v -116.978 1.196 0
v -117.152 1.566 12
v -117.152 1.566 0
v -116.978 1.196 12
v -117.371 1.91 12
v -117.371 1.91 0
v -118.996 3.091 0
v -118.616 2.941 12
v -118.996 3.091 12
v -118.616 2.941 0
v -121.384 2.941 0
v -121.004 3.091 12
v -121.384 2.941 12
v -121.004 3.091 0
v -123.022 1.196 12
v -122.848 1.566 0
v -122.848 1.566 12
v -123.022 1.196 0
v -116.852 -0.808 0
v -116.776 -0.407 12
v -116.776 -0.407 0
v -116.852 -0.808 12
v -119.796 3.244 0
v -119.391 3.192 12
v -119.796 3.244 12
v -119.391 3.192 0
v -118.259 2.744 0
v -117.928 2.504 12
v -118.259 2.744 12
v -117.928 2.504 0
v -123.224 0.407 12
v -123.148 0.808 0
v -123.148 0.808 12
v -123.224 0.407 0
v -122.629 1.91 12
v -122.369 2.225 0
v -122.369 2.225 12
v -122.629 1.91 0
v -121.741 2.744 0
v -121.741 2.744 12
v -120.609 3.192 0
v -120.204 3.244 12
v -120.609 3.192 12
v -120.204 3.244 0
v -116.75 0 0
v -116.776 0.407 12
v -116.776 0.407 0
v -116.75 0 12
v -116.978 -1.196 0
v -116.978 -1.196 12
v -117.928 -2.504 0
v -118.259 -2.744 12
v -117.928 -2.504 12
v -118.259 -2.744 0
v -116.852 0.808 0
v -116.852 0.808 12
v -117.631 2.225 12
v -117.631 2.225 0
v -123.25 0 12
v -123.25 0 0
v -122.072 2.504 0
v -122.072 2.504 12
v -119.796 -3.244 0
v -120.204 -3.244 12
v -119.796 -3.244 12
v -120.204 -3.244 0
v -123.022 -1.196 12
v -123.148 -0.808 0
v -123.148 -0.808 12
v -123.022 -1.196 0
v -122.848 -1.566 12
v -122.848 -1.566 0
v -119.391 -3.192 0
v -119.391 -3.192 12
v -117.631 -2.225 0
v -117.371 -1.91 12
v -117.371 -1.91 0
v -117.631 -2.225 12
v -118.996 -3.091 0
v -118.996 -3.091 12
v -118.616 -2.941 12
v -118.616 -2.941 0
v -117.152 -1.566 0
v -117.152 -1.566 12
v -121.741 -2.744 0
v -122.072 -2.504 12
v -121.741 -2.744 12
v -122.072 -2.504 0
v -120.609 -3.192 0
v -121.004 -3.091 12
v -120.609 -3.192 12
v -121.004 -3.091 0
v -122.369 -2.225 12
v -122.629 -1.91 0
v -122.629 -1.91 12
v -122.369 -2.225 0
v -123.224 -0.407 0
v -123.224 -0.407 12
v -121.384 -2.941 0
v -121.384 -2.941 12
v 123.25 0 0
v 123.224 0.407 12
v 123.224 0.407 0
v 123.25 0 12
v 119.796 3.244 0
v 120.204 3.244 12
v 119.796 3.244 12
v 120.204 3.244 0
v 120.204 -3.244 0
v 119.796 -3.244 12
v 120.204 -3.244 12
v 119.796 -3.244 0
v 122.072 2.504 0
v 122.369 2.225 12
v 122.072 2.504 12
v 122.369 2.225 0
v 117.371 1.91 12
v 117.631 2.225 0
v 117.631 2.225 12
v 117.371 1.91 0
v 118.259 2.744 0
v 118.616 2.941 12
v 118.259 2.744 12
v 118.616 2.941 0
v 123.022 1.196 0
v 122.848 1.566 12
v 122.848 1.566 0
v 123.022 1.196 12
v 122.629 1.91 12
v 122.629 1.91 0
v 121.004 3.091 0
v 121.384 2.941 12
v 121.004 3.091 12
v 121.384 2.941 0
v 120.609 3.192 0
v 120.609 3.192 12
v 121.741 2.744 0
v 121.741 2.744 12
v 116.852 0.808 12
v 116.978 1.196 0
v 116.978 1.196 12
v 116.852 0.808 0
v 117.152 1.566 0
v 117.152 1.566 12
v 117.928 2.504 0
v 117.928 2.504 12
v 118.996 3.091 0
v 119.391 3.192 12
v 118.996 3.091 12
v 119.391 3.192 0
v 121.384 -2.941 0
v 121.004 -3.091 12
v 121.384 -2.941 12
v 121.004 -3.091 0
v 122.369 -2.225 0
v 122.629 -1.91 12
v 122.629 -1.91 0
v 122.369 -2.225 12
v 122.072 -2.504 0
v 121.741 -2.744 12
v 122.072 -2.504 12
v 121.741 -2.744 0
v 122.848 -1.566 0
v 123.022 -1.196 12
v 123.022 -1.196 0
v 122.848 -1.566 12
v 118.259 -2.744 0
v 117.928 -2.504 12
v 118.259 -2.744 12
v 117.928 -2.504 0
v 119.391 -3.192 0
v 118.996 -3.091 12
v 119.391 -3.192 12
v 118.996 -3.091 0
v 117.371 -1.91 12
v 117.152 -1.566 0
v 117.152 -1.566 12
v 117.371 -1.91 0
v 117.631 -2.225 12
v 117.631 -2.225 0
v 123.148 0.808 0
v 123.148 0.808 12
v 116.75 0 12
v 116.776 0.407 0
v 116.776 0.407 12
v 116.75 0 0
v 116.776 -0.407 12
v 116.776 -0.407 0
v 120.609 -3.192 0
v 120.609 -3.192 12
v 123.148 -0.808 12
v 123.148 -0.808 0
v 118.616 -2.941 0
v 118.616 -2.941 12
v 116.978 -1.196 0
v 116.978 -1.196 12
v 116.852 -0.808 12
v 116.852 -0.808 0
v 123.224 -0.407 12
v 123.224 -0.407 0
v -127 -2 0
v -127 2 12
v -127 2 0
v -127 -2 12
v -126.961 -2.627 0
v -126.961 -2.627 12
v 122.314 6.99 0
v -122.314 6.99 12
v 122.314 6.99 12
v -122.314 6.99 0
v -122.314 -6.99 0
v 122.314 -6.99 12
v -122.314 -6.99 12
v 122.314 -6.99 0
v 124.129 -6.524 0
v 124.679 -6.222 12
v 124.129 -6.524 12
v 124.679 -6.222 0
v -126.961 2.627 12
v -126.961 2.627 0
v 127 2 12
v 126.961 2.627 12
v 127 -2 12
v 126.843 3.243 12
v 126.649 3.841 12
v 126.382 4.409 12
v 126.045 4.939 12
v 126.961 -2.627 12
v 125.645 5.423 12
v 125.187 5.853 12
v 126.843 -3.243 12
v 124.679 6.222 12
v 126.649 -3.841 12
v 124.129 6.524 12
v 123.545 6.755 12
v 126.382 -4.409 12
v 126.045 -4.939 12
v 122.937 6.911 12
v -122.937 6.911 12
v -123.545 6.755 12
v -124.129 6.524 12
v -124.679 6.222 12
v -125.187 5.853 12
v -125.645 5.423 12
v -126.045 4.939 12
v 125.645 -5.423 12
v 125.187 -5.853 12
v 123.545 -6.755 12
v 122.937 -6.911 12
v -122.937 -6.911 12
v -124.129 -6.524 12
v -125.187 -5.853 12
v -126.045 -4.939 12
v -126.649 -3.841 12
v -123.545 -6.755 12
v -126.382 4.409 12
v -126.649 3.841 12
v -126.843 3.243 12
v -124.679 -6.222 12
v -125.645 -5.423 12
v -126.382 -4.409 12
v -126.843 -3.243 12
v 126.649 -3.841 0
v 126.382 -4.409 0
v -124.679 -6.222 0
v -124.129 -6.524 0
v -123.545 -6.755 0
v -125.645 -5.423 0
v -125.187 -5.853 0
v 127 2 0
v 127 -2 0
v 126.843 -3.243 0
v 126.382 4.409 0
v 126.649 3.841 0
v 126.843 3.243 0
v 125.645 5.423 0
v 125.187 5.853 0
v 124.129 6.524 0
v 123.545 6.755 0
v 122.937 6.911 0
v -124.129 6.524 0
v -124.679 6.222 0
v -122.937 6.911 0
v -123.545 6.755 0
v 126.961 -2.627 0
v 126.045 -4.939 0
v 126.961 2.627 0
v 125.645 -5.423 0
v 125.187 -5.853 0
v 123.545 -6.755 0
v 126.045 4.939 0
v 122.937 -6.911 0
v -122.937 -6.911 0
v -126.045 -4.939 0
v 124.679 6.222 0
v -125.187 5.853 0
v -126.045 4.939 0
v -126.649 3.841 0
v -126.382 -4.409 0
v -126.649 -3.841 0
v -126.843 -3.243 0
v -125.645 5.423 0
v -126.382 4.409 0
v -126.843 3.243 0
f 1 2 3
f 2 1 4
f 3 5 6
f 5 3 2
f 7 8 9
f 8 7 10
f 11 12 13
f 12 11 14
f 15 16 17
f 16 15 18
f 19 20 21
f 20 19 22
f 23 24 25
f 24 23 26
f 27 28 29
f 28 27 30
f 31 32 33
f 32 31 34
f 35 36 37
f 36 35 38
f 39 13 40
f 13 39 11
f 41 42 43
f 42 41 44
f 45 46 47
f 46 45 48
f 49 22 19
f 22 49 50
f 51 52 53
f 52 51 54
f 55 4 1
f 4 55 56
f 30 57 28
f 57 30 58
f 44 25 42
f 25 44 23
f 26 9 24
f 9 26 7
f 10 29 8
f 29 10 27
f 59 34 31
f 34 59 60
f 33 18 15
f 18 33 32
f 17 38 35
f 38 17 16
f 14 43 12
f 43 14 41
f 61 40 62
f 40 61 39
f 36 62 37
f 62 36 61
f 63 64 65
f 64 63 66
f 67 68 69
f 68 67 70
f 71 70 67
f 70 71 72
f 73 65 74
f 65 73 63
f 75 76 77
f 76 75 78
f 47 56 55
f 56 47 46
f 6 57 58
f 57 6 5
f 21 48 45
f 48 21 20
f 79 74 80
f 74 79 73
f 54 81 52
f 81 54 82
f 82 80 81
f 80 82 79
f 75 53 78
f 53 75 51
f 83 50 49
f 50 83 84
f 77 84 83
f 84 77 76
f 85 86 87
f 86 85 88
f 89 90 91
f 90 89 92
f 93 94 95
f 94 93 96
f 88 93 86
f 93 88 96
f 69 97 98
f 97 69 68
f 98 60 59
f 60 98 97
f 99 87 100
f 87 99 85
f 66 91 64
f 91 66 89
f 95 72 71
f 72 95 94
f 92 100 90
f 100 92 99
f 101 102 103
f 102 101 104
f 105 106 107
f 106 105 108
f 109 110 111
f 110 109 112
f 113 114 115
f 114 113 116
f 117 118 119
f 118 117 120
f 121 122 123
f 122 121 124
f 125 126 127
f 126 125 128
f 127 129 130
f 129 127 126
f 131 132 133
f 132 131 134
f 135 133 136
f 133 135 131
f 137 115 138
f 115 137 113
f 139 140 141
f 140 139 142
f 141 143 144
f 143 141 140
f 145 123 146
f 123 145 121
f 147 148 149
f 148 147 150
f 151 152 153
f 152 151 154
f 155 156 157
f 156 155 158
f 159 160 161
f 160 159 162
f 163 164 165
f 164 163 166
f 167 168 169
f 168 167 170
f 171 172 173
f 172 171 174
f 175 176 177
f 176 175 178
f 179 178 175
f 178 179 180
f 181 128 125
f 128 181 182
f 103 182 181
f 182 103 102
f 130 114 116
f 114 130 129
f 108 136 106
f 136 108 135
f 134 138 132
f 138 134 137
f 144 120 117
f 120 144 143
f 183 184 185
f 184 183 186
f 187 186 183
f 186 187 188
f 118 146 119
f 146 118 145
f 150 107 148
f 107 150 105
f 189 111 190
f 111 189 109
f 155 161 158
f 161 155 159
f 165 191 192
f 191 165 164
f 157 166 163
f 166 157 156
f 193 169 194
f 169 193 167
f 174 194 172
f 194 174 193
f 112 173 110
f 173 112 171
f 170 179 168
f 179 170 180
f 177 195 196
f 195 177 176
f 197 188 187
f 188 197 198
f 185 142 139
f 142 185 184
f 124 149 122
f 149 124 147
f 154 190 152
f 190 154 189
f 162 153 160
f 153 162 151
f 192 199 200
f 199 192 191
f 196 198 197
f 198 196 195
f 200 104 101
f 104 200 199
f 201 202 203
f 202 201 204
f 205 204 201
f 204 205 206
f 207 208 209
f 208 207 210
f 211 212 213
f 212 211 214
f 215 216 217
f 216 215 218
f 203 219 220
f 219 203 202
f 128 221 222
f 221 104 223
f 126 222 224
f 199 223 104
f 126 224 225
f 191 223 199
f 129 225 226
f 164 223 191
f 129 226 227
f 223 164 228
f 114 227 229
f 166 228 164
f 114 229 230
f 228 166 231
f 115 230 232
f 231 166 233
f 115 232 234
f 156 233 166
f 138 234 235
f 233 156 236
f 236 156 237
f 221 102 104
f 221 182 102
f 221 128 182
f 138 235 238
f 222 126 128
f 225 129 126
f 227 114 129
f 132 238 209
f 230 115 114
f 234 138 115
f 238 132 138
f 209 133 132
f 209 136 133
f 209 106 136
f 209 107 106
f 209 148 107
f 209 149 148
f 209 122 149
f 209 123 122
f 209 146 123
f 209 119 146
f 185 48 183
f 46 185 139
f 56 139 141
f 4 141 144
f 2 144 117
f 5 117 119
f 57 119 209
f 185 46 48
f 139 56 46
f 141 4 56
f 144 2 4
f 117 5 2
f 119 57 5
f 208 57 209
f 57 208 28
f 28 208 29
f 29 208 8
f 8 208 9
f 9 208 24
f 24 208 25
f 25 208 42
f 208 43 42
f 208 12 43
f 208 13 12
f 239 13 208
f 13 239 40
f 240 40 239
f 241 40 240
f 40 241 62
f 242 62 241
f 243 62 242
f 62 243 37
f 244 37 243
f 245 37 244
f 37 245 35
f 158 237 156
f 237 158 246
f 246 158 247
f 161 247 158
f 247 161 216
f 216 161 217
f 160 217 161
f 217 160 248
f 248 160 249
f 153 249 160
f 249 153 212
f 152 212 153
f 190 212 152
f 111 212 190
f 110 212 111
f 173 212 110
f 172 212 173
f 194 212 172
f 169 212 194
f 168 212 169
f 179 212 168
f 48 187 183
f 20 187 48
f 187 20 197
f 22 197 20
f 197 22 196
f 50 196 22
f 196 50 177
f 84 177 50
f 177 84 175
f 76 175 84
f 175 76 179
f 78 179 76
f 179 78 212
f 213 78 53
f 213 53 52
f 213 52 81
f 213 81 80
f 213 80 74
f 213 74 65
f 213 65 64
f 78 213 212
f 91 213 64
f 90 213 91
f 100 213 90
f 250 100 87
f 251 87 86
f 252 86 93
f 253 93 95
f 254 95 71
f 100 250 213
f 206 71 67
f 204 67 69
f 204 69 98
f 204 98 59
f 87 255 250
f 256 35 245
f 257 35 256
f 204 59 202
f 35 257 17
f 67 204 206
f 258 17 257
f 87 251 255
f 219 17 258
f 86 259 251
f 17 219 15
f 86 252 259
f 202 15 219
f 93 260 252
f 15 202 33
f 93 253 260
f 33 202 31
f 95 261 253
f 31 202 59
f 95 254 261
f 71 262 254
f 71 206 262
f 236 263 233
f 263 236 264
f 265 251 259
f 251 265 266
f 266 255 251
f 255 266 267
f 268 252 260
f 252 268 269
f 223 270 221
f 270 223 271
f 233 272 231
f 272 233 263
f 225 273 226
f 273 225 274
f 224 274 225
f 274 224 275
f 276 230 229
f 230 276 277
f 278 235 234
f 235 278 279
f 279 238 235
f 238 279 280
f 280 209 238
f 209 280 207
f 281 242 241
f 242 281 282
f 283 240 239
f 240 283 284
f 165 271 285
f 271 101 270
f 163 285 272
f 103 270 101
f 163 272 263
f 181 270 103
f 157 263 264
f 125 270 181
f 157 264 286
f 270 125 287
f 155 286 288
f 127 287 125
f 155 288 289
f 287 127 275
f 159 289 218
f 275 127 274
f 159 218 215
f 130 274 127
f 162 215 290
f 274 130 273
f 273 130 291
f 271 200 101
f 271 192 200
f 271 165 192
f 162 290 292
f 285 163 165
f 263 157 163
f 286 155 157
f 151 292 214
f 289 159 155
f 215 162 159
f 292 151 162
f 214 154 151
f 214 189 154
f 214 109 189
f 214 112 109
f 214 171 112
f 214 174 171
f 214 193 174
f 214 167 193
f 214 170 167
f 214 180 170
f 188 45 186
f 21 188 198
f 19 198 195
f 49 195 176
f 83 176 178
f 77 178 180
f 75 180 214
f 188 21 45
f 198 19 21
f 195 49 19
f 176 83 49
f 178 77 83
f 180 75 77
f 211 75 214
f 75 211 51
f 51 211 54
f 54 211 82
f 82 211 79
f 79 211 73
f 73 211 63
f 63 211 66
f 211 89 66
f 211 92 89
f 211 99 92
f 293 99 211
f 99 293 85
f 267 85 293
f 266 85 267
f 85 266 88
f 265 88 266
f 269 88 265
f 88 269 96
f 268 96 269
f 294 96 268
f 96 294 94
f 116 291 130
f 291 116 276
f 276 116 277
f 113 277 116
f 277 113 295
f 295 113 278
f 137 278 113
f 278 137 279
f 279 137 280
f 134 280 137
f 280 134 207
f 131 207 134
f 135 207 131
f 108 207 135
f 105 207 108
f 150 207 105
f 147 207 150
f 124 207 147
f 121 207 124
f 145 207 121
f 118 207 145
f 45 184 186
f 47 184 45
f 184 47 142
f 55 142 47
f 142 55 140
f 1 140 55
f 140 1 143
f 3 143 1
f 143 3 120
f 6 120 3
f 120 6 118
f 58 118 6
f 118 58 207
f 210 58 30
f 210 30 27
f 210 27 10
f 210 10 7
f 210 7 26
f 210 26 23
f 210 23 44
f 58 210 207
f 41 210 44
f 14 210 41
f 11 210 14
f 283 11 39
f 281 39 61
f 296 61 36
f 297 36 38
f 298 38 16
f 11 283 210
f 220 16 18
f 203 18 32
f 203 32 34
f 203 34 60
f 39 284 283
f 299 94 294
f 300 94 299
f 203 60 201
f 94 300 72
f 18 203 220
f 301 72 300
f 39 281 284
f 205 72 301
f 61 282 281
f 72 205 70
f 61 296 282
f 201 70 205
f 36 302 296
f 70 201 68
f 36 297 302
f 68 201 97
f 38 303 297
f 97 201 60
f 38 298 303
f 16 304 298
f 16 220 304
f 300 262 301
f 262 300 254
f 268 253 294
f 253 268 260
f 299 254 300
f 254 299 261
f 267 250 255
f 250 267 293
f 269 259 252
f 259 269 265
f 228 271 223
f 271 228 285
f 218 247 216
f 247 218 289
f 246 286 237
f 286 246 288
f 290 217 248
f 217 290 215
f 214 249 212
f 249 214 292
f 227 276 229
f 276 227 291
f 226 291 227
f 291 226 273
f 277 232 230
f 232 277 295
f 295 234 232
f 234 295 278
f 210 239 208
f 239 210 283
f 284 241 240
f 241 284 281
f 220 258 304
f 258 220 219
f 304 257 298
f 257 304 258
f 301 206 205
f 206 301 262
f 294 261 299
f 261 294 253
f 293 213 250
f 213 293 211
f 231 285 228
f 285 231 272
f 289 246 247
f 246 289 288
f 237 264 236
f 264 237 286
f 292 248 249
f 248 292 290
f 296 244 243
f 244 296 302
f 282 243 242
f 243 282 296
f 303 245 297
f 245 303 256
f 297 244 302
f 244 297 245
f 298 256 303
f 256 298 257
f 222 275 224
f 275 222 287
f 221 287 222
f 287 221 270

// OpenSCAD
$fn = 50;


difference() {
	union() {
		hull() {
			translate(v = [-122.0000000000, 2.0000000000, 0]) {
				cylinder(h = 12, r = 5);
			}
			translate(v = [122.0000000000, 2.0000000000, 0]) {
				cylinder(h = 12, r = 5);
			}
			translate(v = [-122.0000000000, -2.0000000000, 0]) {
				cylinder(h = 12, r = 5);
			}
			translate(v = [122.0000000000, -2.0000000000, 0]) {
				cylinder(h = 12, r = 5);
			}
		}
	}
	union() {
		translate(v = [-120.0000000000, 0.0000000000, 0]) {
			cylinder(h = 12, r = 3.2500000000);
		}
		translate(v = [120.0000000000, 0.0000000000, 0]) {
			cylinder(h = 12, r = 3.2500000000);
		}
		translate(v = [-120.0000000000, 0.0000000000, 0]) {
			cylinder(h = 12, r = 1.8000000000);
		}
		translate(v = [120.0000000000, 0.0000000000, 0]) {
			cylinder(h = 12, r = 1.8000000000);
		}
		translate(v = [-120.0000000000, 0.0000000000, 0]) {
			cylinder(h = 12, r = 1.8000000000);
		}
		translate(v = [120.0000000000, 0.0000000000, 0]) {
			cylinder(h = 12, r = 1.8000000000);
		}
		translate(v = [-120.0000000000, 0.0000000000, 0]) {
			cylinder(h = 12, r = 1.8000000000);
		}
		translate(v = [120.0000000000, 0.0000000000, 0]) {
			cylinder(h = 12, r = 1.8000000000);
		}
	}
}
